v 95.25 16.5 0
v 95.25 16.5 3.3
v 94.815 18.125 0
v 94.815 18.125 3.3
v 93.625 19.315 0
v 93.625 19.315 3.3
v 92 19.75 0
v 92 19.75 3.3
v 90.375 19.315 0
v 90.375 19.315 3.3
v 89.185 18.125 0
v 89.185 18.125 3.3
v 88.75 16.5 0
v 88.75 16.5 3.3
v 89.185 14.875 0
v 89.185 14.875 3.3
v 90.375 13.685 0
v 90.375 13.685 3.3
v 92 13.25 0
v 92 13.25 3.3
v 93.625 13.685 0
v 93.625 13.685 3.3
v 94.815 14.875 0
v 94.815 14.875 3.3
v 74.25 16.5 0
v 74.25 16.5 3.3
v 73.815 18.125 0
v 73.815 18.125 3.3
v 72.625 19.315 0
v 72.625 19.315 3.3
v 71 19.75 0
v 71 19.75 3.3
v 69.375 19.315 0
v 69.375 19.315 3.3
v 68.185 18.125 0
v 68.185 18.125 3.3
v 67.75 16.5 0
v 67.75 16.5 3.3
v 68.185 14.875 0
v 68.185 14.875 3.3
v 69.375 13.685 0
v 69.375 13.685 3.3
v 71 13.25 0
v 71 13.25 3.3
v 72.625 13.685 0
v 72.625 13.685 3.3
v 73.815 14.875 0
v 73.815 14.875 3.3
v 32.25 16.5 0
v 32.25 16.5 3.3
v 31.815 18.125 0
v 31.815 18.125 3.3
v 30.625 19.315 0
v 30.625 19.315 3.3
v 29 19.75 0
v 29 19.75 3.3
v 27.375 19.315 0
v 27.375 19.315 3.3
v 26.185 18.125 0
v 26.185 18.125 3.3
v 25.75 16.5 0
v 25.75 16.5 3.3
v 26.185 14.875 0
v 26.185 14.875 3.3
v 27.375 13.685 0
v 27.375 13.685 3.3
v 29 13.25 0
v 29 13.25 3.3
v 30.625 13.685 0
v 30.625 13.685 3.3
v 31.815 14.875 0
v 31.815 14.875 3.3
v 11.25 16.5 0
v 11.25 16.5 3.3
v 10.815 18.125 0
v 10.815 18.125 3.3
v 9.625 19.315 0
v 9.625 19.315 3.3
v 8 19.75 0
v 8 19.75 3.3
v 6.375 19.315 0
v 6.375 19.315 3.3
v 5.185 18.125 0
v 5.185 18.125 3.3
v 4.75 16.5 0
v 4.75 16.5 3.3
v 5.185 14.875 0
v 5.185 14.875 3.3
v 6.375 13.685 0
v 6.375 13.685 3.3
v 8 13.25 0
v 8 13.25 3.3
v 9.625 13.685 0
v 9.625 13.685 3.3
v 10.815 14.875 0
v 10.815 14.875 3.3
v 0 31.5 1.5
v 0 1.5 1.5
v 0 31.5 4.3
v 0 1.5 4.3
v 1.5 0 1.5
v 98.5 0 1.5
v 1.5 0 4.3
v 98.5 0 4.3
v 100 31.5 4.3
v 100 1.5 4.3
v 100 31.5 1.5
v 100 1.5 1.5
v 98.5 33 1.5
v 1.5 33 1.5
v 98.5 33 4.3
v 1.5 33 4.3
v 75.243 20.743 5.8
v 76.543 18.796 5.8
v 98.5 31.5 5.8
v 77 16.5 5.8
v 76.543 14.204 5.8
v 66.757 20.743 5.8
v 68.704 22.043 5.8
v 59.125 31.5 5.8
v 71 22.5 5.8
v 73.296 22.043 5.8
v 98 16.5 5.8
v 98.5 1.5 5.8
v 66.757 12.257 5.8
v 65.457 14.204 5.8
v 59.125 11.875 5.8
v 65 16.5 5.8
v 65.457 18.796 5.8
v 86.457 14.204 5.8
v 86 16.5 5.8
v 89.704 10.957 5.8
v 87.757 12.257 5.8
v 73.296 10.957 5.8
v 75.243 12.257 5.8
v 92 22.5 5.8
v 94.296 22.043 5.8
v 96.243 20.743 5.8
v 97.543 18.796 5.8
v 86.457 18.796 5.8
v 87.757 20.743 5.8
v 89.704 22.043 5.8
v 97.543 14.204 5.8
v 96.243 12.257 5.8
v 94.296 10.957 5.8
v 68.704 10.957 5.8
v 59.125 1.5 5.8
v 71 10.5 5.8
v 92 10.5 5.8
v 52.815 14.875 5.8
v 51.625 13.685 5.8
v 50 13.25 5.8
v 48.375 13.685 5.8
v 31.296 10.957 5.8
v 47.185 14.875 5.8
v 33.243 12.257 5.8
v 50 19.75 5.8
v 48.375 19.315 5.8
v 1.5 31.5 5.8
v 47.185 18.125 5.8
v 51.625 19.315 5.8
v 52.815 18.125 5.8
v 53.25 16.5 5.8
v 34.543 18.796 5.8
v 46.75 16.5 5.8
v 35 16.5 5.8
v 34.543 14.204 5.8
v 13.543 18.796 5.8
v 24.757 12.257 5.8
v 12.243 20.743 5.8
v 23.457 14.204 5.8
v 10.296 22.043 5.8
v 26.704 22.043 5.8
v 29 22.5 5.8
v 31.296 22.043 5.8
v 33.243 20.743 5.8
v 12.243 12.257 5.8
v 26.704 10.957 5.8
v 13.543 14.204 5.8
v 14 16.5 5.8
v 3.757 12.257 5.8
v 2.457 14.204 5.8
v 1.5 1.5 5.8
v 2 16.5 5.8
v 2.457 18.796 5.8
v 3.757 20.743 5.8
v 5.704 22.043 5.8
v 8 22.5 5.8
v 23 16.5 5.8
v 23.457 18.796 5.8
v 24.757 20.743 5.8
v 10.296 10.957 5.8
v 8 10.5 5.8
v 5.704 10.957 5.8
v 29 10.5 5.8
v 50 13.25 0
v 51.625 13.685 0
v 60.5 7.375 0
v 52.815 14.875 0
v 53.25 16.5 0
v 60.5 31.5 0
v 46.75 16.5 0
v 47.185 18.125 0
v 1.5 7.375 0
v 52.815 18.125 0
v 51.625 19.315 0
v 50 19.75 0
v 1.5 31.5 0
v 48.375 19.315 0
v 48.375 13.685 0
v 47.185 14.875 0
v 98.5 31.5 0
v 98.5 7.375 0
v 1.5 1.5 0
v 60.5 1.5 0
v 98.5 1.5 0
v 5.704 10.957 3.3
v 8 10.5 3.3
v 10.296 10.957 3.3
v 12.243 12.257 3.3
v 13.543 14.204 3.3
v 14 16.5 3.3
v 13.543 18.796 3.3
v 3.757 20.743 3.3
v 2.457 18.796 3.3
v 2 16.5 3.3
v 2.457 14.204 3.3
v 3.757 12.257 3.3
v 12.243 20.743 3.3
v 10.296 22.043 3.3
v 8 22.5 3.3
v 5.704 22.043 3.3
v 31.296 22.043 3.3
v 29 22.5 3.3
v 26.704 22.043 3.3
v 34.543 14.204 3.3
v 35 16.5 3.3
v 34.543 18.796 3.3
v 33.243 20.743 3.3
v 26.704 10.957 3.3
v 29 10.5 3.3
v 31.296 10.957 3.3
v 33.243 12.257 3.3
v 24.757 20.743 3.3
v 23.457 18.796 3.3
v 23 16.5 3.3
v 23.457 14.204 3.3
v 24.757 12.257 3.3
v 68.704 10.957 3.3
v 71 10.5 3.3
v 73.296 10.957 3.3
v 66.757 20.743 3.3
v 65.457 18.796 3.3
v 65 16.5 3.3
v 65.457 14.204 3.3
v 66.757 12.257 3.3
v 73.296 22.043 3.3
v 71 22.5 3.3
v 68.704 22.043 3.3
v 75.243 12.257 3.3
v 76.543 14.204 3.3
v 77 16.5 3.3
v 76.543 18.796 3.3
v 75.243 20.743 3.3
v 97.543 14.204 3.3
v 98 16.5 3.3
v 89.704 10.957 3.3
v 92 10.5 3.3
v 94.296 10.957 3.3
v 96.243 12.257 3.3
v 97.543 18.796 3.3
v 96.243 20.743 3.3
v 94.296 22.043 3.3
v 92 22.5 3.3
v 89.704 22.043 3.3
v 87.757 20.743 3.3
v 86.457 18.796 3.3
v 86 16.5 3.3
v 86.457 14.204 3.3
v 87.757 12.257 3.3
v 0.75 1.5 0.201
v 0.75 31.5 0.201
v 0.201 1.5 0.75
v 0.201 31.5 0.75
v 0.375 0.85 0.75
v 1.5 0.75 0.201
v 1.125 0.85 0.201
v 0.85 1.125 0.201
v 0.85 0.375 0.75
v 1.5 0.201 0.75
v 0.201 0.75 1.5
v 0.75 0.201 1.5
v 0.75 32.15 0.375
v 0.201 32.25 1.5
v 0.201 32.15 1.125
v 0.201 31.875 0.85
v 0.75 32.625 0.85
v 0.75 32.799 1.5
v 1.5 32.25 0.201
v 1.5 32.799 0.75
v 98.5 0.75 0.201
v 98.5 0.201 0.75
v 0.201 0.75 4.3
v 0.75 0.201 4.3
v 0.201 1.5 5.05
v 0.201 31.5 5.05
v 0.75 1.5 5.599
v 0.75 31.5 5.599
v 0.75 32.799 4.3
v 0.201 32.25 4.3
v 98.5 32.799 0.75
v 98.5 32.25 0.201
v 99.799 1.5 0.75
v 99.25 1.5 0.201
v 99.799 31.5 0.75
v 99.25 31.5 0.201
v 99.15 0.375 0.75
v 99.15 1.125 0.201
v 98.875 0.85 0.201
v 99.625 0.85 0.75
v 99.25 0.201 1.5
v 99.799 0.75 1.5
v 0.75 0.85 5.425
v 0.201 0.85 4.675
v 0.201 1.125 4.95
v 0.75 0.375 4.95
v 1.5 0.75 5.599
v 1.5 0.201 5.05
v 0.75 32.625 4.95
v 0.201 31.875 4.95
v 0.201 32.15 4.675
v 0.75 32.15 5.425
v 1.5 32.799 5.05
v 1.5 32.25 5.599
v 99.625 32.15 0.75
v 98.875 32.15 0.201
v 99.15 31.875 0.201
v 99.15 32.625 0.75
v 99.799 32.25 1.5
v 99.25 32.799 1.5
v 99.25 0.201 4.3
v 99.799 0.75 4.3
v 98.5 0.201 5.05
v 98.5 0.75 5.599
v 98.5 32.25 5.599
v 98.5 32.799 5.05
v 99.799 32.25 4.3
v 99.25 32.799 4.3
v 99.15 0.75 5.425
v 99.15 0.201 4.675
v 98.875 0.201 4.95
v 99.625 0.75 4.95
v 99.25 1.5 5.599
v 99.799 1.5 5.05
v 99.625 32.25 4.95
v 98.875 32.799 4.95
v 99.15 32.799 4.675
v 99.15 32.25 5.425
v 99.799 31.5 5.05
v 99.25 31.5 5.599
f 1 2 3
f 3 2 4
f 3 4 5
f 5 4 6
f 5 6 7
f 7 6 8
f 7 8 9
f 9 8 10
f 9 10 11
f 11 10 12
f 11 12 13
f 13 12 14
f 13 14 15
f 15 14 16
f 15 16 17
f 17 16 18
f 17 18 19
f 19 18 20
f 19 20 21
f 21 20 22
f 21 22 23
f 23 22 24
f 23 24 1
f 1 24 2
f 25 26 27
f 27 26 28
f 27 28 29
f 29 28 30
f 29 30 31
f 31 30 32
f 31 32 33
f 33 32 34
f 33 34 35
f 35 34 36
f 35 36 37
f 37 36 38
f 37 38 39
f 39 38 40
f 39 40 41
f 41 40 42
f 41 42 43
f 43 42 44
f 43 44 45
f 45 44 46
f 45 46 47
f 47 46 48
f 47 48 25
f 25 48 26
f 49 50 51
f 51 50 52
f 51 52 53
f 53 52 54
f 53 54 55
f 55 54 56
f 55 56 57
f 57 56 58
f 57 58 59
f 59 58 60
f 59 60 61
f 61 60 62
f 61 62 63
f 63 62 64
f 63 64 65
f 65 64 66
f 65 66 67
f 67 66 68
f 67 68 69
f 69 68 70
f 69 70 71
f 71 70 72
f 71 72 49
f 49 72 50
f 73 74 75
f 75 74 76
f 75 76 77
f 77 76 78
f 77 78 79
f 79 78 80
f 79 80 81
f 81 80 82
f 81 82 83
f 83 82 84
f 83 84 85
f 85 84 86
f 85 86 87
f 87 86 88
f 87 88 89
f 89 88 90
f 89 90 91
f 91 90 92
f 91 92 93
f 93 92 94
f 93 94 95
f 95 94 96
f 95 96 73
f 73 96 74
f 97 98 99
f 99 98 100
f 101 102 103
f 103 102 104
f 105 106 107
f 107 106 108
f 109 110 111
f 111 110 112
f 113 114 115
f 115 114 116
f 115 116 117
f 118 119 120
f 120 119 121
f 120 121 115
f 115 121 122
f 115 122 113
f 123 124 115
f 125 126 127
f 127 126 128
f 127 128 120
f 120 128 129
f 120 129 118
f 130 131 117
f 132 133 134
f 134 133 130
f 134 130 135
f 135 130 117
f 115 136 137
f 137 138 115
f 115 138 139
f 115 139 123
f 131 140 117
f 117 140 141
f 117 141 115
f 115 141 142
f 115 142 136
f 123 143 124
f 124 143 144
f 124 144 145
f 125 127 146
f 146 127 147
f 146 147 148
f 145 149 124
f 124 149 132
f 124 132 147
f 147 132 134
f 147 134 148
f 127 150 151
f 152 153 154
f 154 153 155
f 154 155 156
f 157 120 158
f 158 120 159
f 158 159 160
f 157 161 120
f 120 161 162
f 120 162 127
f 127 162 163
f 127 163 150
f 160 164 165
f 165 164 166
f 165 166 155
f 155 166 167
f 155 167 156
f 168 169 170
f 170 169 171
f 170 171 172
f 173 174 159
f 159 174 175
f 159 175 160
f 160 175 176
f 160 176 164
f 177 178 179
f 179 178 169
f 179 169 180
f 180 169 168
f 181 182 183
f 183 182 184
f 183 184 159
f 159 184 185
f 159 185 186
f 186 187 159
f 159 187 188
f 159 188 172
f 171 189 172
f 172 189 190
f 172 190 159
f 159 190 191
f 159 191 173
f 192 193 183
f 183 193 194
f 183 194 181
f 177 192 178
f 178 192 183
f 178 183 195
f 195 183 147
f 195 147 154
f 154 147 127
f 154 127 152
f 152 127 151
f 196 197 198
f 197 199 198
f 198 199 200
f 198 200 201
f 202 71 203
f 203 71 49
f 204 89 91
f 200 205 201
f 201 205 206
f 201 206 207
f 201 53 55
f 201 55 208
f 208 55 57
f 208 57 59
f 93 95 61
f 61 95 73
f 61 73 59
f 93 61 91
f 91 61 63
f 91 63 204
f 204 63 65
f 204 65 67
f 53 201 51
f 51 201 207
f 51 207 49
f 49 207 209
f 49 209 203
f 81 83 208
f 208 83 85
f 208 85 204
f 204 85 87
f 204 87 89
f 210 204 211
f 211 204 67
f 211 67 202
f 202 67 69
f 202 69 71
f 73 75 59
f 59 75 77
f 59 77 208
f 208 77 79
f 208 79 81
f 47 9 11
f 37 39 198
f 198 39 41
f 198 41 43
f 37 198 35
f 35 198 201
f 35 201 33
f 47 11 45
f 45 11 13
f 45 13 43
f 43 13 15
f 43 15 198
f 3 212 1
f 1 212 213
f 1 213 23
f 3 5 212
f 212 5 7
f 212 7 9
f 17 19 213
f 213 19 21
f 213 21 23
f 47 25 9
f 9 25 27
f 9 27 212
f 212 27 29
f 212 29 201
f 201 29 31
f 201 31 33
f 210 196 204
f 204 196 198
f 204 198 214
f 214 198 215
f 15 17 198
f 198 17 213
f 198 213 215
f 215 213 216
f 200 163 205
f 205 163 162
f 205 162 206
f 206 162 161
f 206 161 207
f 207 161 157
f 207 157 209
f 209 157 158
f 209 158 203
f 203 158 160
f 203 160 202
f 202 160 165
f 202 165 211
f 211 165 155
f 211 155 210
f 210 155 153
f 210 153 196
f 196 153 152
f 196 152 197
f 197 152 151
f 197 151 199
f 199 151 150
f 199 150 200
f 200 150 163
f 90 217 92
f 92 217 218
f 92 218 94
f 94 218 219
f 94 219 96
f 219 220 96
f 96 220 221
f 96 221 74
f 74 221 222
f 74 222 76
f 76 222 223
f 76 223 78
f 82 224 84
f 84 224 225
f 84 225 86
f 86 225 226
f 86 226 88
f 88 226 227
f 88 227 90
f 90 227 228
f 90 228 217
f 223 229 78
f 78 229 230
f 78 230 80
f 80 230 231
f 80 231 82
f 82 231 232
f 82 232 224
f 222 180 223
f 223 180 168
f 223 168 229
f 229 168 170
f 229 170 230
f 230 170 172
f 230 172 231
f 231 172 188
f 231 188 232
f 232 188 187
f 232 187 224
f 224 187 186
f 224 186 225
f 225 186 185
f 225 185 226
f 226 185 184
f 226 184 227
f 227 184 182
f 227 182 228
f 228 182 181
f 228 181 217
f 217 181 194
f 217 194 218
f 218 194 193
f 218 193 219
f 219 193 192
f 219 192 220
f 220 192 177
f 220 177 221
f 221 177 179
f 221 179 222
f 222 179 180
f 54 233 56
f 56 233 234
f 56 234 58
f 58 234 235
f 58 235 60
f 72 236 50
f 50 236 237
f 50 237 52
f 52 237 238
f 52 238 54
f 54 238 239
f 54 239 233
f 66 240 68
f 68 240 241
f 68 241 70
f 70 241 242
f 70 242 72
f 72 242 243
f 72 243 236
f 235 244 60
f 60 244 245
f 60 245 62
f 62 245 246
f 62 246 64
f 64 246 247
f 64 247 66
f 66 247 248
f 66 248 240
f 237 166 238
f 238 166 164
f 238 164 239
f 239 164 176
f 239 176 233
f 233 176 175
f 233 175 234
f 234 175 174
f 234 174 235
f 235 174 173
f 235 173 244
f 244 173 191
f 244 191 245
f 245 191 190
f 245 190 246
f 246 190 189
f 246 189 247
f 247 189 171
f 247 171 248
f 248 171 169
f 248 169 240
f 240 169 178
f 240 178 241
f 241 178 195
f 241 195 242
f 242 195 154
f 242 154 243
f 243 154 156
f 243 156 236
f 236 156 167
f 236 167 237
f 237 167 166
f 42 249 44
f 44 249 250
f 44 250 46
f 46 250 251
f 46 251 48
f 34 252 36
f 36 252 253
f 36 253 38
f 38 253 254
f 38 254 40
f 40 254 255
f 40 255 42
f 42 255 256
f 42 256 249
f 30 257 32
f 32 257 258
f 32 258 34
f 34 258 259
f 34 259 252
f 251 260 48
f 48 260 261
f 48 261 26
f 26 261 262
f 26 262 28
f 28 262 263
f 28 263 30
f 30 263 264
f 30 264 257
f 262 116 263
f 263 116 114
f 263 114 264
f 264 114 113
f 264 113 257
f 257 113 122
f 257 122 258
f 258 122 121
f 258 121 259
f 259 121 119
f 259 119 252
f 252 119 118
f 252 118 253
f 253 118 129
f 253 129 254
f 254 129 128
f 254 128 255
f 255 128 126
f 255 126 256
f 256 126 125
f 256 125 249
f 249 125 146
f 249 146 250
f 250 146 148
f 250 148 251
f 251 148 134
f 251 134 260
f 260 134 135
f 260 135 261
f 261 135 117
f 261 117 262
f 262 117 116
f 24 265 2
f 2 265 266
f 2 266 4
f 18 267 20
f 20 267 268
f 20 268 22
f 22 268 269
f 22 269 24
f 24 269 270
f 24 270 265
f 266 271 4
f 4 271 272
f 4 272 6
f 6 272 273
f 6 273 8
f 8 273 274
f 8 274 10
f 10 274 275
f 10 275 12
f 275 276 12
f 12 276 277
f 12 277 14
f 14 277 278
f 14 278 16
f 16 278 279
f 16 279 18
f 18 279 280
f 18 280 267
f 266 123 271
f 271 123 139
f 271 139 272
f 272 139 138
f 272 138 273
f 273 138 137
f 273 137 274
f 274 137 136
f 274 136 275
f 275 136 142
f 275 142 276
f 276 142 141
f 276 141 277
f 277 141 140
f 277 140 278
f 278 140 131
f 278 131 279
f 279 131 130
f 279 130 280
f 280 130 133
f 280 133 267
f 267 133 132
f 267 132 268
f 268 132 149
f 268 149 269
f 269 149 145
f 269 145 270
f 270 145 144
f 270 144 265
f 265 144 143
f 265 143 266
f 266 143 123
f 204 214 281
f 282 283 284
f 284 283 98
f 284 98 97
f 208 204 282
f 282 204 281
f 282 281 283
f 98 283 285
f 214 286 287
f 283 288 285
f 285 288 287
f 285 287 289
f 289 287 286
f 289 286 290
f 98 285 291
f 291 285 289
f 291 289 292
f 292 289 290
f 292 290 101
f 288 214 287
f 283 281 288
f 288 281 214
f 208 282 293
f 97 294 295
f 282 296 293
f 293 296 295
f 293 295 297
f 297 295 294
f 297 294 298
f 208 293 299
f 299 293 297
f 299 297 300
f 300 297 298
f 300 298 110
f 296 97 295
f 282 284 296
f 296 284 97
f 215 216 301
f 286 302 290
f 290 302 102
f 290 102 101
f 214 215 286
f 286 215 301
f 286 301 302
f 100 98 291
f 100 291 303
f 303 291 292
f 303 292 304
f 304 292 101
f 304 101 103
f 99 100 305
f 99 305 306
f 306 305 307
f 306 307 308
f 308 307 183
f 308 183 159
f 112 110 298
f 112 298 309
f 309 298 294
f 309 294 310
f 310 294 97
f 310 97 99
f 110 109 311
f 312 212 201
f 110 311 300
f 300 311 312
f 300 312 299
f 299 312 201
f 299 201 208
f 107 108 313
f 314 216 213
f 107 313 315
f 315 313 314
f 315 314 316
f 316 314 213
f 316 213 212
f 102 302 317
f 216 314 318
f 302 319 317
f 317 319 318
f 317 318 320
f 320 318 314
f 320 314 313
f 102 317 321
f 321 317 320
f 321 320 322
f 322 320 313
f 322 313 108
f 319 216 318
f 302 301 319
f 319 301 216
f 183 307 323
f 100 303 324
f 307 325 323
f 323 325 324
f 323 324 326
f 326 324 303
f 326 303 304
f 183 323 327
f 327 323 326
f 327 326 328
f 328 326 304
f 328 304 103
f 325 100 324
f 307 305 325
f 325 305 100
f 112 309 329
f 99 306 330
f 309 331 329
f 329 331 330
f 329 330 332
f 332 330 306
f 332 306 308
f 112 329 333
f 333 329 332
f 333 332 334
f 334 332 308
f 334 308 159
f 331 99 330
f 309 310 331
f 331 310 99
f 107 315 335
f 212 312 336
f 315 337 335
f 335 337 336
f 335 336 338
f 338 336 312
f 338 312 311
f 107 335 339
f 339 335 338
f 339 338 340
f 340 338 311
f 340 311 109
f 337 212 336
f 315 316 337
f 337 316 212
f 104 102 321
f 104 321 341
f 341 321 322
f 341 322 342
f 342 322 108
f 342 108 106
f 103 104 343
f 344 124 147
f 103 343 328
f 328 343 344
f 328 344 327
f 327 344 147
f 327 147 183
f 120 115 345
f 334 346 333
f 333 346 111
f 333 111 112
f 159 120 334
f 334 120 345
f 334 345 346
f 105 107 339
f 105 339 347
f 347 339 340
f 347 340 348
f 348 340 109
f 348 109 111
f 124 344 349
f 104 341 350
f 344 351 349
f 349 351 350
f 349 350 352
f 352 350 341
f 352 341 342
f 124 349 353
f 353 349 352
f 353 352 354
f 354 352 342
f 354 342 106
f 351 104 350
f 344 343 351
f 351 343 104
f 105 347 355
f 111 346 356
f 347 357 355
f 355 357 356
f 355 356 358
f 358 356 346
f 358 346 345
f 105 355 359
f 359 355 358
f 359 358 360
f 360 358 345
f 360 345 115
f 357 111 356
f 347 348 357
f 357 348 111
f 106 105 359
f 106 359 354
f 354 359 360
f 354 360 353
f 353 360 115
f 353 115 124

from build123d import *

# Parameters (mm, degrees)
SKETCH1_W           = 100
SKETCH1_H           = 33
BOSS_EXTRUDE1_DEPTH = 5.8
SKETCH2_R           = 3.25
CUT_EXTRUDE1_DEPTH  = 106.463927482
SKETCH3_R           = 6
CUT_EXTRUDE5_DEPTH  = 2.5
FILLET1_R           = 1.5


with BuildPart() as part:
    # Sketch1 → Boss-Extrude1 (new body)
    with BuildSketch(Plane.XY):
        with Locations((50, 16.5)):
            Rectangle(SKETCH1_W, SKETCH1_H)
    extrude(amount=BOSS_EXTRUDE1_DEPTH)

    # Sketch2 → Cut-Extrude1 (cut, through all)
    with BuildSketch(Plane.XY.offset(5.8)):
        with Locations((8, 16.5)):
            Circle(SKETCH2_R)
        with Locations((29, 16.5)):
            Circle(SKETCH2_R)
        with Locations((50, 16.5)):
            Circle(SKETCH2_R)
        with Locations((71, 16.5)):
            Circle(SKETCH2_R)
        with Locations((92, 16.5)):
            Circle(SKETCH2_R)
    extrude(amount=-CUT_EXTRUDE1_DEPTH, mode=Mode.SUBTRACT)

    # Sketch3 → Cut-Extrude5 (cut)
    with BuildSketch(Plane.XY.offset(5.8)):
        with Locations((8, 16.5)):
            Circle(SKETCH3_R)
        with Locations((29, 16.5)):
            Circle(SKETCH3_R)
        with Locations((71, 16.5)):
            Circle(SKETCH3_R)
        with Locations((92, 16.5)):
            Circle(SKETCH3_R)
    extrude(amount=-CUT_EXTRUDE5_DEPTH, mode=Mode.SUBTRACT)

    # Fillet1
    fillet1_edges = [part.edges().sort_by_distance(p)[0] for p in [
        (100, 16.5, 5.8),
        (50, 33, 5.8),
        (0, 16.5, 5.8),
        (50, 33, 0),
        (100, 16.5, 0),
        (50, 0, 0),
        (0, 16.5, 0),
        (0, 33, 2.9),
        (100, 33, 2.9),
        (100, 0, 2.9),
        (0, 0, 2.9),
        (50, 0, 5.8),
    ]]
    fillet(fillet1_edges, radius=FILLET1_R)


solid = part.part
